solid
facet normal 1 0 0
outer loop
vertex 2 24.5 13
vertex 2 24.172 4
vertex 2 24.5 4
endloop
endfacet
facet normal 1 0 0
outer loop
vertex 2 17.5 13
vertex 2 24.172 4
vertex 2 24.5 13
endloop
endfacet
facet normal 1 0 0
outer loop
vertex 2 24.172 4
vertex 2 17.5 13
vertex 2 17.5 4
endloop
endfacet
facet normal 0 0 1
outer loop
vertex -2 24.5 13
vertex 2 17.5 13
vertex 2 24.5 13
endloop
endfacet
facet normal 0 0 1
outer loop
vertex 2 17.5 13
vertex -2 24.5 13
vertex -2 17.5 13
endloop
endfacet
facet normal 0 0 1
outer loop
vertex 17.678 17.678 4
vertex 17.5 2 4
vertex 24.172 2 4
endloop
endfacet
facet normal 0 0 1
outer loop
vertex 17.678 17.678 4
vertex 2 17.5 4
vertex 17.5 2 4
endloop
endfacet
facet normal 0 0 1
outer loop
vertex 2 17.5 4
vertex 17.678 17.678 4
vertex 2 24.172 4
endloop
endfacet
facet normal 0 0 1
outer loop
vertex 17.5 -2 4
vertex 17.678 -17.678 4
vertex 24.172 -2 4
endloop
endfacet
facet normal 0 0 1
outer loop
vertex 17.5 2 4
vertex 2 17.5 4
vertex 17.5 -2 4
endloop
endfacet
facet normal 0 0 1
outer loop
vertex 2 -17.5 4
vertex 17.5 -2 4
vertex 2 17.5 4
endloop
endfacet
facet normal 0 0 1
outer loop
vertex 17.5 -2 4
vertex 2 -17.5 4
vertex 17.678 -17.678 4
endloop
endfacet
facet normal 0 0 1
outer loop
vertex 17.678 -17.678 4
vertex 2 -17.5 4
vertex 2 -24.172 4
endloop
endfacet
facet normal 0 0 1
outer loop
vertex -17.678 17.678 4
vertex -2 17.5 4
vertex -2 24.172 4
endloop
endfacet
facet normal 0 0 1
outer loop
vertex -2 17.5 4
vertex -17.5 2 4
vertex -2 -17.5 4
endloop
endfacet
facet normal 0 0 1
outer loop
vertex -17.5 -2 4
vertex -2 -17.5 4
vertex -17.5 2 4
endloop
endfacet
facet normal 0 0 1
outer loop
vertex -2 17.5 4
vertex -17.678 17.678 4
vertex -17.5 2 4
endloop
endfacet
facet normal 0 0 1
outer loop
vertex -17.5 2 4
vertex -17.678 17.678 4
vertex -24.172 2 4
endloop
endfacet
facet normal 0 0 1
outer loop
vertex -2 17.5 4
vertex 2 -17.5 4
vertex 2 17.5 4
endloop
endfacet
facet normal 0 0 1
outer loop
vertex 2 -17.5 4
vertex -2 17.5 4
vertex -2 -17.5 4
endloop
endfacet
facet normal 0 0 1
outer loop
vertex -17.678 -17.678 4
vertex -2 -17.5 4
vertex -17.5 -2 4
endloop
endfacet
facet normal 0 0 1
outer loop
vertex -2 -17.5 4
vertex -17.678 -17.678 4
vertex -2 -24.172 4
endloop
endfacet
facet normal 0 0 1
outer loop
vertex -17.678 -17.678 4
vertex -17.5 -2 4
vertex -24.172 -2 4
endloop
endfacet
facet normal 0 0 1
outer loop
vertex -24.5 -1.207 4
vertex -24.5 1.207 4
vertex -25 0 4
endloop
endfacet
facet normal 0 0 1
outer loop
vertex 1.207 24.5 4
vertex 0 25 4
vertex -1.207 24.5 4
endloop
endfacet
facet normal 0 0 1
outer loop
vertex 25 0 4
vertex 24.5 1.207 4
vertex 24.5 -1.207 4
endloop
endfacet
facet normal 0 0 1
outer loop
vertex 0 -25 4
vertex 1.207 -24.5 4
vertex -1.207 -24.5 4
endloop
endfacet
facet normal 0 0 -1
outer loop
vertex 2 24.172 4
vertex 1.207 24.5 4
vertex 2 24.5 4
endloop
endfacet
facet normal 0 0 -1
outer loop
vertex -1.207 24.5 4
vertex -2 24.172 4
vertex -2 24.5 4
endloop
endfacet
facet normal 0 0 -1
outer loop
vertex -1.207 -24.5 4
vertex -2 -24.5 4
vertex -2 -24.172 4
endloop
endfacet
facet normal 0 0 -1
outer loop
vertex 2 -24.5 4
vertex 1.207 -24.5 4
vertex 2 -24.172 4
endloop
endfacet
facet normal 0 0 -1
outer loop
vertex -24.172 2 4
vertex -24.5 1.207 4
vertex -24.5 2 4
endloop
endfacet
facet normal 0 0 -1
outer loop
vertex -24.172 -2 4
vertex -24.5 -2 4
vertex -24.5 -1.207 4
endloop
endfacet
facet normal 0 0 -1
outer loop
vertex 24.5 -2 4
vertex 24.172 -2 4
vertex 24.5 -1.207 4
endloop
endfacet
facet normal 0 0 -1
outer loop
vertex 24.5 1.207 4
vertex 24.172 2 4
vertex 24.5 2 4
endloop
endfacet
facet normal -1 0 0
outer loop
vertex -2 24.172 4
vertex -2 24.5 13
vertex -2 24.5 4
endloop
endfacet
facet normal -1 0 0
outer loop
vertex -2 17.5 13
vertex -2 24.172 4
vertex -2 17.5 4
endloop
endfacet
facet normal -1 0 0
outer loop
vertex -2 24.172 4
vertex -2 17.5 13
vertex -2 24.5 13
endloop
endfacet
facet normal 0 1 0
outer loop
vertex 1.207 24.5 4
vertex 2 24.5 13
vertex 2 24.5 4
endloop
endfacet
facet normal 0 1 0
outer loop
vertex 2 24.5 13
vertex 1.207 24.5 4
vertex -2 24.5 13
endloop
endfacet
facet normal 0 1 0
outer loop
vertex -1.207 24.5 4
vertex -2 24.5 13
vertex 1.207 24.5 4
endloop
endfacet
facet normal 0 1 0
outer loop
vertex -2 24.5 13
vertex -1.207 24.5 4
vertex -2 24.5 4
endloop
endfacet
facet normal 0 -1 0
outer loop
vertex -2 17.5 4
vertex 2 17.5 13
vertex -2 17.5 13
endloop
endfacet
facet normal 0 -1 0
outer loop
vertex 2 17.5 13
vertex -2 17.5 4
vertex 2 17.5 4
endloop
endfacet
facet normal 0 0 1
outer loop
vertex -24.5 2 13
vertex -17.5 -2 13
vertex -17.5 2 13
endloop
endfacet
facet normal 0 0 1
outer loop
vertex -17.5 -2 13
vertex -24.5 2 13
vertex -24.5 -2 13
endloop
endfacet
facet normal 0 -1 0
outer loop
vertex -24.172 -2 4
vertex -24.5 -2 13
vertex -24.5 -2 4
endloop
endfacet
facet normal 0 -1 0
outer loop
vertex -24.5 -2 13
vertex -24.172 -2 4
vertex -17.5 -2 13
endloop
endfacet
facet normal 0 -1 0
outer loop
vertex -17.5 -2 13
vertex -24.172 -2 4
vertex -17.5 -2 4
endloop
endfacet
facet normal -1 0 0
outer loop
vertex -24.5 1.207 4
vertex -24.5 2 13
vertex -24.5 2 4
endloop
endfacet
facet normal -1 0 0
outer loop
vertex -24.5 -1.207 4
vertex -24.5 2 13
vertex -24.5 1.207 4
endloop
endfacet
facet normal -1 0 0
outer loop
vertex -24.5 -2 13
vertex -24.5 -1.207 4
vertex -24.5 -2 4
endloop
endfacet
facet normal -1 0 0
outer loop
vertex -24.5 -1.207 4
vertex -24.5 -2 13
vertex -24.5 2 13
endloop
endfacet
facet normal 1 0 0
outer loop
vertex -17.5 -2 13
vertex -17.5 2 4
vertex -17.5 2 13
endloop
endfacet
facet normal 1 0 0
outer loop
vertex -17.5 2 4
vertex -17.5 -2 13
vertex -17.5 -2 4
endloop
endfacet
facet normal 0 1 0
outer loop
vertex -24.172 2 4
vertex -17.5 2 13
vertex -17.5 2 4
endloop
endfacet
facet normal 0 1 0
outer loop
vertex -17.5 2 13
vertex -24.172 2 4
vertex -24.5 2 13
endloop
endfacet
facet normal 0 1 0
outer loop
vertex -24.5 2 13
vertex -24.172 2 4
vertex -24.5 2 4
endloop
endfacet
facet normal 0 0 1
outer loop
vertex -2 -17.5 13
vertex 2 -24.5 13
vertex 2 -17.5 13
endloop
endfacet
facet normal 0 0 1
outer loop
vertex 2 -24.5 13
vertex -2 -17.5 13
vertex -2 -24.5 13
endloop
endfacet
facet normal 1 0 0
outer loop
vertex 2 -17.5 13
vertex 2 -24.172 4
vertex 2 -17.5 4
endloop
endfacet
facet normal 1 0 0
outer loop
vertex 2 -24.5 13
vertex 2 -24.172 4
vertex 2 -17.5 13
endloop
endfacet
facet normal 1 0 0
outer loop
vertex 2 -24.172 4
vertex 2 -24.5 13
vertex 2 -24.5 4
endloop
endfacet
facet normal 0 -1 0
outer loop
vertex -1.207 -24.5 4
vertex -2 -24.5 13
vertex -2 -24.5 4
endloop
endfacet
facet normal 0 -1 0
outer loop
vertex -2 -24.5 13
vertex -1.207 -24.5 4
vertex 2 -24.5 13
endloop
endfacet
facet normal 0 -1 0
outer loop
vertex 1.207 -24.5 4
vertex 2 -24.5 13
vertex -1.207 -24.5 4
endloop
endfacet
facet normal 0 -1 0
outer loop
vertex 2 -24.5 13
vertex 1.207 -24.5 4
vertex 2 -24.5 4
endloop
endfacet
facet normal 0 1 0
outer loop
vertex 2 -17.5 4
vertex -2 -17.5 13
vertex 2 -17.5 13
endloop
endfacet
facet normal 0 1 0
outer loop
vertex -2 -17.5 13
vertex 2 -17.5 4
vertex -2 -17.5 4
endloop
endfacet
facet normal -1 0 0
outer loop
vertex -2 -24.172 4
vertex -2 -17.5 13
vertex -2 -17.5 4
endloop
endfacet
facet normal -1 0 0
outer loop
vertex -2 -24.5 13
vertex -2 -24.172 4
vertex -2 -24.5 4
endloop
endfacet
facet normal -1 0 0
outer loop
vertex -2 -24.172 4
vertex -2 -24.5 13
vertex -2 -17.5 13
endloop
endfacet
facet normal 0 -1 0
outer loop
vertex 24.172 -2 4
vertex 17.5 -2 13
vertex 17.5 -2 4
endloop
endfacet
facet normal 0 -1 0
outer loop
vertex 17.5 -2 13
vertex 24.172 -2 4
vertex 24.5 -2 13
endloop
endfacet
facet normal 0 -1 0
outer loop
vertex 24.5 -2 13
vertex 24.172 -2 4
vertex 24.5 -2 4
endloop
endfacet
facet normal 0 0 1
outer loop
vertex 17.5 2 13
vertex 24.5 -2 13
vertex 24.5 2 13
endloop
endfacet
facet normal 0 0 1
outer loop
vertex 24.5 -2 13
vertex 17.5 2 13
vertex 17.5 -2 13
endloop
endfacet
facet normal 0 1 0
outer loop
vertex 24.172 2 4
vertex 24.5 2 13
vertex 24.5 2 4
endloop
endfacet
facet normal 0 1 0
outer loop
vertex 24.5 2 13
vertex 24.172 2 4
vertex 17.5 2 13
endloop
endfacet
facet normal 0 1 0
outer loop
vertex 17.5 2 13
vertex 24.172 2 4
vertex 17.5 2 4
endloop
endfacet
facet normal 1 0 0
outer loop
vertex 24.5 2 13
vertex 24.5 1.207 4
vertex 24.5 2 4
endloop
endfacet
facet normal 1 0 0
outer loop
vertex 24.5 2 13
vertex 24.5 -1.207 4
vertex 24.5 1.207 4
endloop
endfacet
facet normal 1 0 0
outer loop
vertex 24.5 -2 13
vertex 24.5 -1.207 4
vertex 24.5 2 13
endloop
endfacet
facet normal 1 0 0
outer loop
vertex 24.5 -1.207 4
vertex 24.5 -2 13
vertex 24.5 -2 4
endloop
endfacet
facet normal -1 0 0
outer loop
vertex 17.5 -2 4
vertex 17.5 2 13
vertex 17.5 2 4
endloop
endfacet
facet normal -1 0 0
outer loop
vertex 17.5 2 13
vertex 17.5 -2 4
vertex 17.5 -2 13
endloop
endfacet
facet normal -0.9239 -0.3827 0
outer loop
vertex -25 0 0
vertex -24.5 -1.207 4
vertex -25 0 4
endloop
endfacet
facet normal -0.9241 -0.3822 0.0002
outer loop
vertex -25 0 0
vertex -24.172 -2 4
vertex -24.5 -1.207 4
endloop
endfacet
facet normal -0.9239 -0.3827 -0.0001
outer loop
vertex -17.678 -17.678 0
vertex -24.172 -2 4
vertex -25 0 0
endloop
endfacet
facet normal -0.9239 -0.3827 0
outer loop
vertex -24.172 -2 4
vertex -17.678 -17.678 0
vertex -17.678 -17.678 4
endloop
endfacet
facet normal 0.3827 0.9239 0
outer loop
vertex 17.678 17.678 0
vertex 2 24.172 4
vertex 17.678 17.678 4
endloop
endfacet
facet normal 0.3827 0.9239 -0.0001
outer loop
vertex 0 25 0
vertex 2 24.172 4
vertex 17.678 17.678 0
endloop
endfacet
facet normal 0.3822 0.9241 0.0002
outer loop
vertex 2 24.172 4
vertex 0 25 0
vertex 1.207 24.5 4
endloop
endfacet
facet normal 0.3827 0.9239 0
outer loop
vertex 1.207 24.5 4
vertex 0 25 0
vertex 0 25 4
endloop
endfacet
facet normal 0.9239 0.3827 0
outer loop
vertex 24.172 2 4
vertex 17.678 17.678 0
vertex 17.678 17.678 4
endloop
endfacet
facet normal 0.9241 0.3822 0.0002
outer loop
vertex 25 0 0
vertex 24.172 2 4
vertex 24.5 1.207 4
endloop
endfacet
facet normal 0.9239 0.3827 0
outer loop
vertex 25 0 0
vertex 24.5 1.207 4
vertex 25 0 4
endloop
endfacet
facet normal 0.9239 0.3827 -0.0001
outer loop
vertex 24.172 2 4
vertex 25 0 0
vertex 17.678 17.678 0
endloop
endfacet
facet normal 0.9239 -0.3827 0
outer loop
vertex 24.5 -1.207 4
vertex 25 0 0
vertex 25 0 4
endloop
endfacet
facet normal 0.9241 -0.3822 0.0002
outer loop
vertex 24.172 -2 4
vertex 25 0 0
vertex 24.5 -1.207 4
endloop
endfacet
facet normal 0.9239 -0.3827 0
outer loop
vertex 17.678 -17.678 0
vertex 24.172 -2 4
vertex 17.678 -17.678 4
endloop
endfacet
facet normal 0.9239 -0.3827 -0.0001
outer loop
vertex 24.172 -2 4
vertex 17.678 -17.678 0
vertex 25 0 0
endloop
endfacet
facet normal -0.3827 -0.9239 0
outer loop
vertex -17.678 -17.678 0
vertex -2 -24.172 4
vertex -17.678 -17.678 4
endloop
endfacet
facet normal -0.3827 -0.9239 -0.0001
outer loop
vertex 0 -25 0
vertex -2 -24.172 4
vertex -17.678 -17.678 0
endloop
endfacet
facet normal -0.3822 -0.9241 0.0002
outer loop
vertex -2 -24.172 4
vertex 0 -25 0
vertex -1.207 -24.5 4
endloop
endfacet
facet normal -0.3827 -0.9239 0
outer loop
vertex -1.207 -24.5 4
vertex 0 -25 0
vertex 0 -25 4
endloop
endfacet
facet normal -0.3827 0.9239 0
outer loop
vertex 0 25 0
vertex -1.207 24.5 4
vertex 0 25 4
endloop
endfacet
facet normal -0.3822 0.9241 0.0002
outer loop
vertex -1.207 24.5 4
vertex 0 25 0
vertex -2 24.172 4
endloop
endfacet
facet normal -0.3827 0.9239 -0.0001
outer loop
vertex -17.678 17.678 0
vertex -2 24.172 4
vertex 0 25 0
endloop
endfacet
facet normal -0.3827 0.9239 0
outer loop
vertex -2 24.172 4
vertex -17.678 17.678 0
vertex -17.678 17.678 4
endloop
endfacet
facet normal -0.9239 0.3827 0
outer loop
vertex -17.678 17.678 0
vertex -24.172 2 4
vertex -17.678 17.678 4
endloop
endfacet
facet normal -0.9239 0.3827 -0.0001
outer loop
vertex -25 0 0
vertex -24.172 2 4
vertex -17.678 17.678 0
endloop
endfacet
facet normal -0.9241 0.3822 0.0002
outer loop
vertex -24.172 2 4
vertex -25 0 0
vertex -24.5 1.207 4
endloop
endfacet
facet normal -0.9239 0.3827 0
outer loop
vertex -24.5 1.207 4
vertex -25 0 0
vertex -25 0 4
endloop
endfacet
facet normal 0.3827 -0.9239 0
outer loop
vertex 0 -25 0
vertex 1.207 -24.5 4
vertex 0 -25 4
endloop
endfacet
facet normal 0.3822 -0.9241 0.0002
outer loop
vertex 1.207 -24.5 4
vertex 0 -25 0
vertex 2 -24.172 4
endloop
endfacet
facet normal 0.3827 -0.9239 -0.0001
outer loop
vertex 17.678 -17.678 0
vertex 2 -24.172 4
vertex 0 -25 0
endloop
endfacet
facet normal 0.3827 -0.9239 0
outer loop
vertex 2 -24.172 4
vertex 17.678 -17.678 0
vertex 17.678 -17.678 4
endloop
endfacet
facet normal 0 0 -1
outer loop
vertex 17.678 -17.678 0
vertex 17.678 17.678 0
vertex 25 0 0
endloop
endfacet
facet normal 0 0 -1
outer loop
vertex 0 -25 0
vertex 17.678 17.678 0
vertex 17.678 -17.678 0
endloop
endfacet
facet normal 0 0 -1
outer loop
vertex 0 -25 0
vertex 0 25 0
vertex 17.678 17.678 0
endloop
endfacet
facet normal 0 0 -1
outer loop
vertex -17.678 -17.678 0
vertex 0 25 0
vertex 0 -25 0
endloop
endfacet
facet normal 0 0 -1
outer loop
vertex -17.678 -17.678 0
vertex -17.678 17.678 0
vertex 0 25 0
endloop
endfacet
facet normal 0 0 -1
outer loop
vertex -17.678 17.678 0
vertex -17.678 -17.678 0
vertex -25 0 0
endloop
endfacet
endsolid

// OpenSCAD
// FLOODSHIFT disaster START | 50 x 50 x 13 mm max
// Octagonal base, four raised alert rays, and a flat centered 30 x 30 mm ArUco pad.
$fn=48;
union(){
  cylinder(d=50,h=4,$fn=8);
  linear_extrude(4) square([30,30],center=true);
  // Cardinal alert rays are outside the ArUco square and rise to 13 mm overall.
  for(a=[0,90,180,270]) rotate([0,0,a]) translate([0,21,8.5]) cube([4,7,9],center=true);
}
